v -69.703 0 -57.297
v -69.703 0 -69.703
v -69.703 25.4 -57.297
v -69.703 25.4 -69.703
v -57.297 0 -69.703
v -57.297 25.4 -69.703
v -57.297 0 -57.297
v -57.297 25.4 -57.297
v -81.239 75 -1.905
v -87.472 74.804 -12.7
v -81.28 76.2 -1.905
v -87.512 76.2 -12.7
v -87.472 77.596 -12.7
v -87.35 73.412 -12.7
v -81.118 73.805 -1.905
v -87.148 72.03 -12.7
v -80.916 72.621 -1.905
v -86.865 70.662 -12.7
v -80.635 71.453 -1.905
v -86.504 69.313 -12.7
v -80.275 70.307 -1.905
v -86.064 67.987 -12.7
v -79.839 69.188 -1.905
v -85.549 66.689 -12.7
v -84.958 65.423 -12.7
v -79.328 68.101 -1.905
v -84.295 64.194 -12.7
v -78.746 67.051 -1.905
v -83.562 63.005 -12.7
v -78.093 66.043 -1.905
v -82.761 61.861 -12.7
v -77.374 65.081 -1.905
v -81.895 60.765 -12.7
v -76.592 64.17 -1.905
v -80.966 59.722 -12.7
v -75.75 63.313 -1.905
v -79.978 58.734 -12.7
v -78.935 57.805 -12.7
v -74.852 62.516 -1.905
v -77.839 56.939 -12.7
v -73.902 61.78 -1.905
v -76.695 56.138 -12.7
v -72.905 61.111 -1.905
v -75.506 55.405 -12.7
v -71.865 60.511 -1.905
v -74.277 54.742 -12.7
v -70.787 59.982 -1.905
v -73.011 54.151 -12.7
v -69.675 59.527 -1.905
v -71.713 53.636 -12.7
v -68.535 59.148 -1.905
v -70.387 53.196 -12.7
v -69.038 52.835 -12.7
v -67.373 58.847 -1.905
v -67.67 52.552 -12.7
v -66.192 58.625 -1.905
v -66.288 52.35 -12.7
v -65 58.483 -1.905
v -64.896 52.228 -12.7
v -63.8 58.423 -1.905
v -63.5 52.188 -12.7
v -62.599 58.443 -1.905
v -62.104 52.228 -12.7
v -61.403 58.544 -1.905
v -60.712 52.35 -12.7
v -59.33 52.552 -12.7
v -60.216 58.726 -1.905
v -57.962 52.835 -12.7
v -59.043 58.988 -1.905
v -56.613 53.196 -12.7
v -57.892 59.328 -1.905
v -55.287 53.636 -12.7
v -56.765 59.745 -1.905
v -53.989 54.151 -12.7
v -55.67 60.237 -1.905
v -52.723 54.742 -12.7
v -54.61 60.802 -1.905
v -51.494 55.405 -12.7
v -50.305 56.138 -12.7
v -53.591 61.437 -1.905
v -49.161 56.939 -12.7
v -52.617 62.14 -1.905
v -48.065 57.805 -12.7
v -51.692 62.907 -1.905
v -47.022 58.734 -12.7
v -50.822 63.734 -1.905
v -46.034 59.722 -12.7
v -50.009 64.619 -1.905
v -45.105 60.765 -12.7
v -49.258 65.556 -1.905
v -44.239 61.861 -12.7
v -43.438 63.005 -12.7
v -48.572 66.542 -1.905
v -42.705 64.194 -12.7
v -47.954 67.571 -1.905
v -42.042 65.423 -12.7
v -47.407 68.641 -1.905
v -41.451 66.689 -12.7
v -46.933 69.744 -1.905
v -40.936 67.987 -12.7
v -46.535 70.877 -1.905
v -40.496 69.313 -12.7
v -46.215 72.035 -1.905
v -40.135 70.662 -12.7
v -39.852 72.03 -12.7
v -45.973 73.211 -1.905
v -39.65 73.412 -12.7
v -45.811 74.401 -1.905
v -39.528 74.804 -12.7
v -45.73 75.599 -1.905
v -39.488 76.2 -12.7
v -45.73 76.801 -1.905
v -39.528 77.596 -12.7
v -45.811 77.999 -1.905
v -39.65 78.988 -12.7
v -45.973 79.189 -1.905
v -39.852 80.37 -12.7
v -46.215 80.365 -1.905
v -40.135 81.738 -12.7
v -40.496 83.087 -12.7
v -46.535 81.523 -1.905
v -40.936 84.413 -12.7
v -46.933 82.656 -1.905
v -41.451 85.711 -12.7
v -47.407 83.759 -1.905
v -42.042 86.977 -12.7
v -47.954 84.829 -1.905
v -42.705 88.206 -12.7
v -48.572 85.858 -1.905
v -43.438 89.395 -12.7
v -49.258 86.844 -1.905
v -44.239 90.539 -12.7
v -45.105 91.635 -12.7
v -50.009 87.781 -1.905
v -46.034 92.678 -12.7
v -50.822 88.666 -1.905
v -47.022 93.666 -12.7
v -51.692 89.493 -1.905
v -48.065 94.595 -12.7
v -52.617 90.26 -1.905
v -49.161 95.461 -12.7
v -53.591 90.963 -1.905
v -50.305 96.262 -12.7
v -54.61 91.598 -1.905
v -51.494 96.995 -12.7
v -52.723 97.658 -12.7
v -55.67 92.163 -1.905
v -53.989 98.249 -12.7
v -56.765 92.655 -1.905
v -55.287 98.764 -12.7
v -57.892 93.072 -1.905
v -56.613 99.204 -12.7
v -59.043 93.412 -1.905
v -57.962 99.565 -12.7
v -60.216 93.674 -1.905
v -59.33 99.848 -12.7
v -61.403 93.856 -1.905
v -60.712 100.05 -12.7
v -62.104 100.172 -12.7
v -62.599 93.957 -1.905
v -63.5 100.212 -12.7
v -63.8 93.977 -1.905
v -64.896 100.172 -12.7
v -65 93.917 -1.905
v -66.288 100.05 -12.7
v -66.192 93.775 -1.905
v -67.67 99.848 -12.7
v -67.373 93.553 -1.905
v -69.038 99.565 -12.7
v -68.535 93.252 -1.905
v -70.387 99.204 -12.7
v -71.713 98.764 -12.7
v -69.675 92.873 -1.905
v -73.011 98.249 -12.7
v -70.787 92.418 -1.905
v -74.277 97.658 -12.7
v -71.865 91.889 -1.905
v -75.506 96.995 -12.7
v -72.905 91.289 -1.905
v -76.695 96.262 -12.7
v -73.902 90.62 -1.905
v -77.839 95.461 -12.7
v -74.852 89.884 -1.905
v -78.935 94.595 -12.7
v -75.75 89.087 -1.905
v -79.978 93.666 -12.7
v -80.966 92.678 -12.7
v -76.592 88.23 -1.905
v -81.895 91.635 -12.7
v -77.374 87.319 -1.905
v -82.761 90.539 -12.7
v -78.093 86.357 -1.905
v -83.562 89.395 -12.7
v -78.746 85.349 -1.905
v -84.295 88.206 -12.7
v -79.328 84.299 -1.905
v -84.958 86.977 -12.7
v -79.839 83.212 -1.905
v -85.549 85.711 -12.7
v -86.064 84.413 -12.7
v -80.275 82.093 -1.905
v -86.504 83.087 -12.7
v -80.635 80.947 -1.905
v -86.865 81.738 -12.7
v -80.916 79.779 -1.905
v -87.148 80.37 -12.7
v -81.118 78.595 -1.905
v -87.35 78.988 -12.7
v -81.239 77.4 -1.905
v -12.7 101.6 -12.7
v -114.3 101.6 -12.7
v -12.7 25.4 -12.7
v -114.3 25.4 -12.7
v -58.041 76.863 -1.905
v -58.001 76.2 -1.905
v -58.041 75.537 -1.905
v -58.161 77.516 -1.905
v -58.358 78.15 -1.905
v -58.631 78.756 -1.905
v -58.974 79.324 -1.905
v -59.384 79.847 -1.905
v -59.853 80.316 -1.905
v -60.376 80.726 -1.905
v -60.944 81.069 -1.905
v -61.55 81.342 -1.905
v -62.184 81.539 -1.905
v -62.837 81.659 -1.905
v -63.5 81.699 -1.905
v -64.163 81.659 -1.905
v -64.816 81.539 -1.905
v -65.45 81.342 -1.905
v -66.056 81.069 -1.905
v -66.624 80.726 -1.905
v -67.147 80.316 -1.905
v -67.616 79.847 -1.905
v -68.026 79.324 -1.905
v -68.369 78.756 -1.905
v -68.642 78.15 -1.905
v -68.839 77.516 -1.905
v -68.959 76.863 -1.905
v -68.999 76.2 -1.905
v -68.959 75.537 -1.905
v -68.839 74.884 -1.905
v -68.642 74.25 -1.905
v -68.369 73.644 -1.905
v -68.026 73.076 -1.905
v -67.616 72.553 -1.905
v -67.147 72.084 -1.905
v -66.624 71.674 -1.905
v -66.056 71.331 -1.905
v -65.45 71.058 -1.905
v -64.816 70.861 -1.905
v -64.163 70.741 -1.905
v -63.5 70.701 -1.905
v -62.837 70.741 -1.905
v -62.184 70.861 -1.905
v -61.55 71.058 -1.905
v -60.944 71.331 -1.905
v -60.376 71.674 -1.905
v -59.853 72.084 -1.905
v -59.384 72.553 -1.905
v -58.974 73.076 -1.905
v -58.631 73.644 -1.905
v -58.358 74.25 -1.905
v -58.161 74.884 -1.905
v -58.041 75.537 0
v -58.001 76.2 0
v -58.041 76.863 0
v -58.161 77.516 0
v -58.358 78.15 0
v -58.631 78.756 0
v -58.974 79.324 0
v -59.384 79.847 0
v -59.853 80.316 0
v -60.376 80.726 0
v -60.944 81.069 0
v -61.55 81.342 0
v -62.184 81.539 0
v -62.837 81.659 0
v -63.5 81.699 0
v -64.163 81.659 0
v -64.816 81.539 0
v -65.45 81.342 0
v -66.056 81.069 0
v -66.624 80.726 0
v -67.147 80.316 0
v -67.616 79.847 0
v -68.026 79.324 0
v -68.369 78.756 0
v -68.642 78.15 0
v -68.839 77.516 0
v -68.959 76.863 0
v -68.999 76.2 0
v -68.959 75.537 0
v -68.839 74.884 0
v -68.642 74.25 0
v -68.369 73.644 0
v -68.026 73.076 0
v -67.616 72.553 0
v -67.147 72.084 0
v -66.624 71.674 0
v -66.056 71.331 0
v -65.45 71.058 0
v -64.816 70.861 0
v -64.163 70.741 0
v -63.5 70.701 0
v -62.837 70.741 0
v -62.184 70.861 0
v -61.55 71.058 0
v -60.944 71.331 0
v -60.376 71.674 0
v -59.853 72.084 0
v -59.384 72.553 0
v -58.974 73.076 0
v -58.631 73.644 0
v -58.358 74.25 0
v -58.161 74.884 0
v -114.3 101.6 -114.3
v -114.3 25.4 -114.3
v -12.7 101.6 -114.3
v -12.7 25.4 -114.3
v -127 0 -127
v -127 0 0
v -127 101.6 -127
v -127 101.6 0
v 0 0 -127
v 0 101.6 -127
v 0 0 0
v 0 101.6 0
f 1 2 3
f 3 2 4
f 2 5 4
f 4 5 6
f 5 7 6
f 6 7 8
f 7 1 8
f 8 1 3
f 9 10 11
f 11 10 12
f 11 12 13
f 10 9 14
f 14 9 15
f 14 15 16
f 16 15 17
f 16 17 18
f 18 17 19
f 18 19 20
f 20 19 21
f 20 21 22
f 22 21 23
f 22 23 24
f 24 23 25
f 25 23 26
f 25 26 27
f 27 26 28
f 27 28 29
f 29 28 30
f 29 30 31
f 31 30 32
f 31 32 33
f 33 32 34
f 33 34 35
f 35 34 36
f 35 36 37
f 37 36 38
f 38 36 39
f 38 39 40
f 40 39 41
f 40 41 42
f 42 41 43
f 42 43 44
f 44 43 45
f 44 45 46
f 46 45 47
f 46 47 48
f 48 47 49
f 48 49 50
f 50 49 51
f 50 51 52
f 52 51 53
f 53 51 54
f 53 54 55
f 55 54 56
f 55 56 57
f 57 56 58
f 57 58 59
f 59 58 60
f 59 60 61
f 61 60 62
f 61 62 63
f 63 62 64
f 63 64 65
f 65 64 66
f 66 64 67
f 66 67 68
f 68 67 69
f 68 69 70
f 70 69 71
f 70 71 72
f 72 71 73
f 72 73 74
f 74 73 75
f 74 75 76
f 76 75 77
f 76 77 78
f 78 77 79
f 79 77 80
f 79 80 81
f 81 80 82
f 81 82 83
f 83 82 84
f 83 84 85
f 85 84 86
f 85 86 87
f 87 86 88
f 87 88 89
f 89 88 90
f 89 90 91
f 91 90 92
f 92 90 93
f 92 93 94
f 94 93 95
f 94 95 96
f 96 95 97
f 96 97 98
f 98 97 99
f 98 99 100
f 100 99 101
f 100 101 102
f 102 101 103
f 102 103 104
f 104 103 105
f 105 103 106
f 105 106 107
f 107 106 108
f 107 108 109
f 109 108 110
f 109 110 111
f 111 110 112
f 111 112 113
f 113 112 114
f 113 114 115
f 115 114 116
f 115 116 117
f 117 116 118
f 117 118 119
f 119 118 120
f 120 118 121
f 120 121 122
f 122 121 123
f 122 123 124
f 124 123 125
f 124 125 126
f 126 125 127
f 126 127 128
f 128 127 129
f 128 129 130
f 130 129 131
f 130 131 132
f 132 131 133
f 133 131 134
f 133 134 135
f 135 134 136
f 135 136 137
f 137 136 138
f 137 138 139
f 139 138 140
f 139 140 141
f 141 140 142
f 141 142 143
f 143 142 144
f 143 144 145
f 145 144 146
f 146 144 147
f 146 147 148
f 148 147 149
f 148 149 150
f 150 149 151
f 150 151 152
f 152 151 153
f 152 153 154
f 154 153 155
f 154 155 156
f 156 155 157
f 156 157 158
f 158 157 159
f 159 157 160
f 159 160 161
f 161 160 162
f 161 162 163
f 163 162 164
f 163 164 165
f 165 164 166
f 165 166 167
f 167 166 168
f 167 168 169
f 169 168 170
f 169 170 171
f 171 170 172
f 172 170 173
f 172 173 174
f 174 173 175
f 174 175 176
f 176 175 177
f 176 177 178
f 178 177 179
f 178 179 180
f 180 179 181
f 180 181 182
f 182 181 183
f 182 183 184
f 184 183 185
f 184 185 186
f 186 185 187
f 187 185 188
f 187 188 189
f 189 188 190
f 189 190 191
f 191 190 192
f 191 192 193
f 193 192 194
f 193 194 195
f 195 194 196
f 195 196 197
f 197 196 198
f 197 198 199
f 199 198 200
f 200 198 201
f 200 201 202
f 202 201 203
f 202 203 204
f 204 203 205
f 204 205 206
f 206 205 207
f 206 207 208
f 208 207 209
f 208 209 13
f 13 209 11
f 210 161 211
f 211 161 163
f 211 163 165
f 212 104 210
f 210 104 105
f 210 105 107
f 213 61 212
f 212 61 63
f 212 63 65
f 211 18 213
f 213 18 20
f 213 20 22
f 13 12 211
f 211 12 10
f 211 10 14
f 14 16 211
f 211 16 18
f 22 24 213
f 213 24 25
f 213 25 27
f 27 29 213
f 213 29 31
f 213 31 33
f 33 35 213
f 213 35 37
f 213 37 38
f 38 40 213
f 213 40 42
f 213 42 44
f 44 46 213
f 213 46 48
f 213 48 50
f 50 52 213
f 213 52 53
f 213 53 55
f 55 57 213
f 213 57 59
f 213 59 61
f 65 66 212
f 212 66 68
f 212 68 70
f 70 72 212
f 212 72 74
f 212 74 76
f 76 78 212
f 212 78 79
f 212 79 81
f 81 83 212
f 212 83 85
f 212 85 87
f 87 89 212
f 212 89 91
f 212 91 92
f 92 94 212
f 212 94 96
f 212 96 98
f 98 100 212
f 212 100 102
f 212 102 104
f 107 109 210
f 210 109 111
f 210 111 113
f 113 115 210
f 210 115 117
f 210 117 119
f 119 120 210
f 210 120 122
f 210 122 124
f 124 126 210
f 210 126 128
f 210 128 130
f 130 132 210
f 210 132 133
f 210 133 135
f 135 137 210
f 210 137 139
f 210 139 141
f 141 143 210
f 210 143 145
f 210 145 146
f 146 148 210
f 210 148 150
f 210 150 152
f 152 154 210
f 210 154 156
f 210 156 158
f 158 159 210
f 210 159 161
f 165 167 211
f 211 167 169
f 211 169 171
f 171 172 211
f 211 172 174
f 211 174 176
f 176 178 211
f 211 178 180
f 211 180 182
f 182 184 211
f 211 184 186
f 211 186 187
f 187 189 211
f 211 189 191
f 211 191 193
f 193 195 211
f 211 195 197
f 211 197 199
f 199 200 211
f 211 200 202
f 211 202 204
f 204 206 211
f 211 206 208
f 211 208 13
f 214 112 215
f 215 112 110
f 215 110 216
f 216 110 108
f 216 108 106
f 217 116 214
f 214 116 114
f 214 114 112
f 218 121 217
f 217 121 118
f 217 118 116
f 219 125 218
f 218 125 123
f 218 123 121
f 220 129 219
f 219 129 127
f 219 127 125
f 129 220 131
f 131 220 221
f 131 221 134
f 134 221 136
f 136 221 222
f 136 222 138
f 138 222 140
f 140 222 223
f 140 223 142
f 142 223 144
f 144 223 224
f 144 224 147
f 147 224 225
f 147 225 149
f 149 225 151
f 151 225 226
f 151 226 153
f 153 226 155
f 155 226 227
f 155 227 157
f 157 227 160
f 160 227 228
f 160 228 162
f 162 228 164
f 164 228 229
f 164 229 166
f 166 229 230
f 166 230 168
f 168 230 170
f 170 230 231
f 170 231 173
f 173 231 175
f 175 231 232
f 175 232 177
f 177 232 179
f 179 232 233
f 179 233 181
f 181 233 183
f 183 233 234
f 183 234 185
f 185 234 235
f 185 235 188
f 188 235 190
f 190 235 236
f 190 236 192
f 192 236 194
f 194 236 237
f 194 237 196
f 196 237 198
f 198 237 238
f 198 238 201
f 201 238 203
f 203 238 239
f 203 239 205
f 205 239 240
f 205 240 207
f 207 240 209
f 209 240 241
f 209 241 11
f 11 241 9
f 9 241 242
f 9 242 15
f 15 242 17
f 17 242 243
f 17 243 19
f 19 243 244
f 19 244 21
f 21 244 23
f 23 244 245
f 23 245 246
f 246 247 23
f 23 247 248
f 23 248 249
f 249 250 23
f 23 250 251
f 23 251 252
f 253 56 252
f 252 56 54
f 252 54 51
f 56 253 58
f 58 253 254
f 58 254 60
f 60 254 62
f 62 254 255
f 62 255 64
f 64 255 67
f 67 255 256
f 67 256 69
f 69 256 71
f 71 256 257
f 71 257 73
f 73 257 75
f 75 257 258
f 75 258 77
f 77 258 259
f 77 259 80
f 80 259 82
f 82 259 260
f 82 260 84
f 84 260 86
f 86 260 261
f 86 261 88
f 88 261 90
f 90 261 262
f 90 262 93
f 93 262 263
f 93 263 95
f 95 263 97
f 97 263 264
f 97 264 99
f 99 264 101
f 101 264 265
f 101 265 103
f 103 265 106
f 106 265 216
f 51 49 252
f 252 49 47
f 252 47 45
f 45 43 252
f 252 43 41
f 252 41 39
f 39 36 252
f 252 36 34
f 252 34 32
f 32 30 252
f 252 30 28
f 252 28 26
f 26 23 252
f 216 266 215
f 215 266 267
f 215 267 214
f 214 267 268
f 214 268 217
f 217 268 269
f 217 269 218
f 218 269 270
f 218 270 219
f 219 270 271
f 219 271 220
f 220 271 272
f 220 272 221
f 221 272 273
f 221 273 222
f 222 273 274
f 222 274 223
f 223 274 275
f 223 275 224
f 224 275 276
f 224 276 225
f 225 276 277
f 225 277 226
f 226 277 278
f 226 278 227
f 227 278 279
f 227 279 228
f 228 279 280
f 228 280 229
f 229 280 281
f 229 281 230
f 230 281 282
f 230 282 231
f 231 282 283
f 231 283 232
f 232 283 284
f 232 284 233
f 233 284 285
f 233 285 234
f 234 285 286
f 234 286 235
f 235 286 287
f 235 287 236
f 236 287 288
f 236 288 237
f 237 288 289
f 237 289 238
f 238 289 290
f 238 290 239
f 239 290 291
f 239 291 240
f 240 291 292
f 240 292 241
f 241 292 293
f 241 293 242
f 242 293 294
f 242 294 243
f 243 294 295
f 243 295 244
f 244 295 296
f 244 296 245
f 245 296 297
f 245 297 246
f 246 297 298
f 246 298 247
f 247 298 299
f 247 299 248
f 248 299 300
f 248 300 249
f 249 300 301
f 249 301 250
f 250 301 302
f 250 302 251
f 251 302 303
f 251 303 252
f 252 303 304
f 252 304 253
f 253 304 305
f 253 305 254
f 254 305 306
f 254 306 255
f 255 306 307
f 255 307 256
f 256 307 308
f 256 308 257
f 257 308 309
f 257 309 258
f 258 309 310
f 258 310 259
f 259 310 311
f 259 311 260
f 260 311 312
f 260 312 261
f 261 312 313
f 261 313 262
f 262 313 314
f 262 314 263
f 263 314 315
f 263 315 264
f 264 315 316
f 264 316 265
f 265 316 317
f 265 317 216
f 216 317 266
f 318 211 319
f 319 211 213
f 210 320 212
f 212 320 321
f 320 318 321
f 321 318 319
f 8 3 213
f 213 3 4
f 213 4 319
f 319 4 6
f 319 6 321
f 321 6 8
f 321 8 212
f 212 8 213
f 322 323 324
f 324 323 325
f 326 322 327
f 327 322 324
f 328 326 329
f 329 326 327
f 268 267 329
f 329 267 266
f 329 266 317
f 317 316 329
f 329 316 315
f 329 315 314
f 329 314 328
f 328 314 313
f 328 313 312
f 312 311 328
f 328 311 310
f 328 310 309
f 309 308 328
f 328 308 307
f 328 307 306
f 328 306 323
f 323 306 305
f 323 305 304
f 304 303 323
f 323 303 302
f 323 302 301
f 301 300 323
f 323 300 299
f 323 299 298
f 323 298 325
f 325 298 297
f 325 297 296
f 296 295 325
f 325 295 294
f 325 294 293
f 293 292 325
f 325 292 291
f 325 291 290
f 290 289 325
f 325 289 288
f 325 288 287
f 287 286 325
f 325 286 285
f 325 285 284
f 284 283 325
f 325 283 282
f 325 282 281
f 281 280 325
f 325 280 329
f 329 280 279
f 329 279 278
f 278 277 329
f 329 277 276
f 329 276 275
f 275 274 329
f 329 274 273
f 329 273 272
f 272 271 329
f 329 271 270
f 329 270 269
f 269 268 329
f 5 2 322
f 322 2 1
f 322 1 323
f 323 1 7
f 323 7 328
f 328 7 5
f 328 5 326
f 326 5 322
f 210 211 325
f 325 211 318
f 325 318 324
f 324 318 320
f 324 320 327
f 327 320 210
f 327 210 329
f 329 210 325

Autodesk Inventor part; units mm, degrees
ref_plane "YZ Plane" through (0, 0, 0) normal (1, 0, 0) x (0, 1, 0)
ref_plane "XZ Plane" through (0, 0, 0) normal (0, 1, 0) x (-1, 0, 0)
ref_plane "XY Plane" through (0, 0, 0) normal (0, 0, 1) x (1, 0, 0)
sketch "Sketch1" plane through (0, 0, 0) normal (0, 1, 0) x (-1, 0, 0)
  line L0 (0, 0) -> (127, 0)
  line L1 (127, 0) -> (127, -127)
  line L2 (127, -127) -> (0, -127)
  line L3 (0, -127) -> (0, 0)
  dimension "d0" = 127
  dimension "d1" = 127
extrude "Extrusion1" add sketch "Sketch1" along normal blind 101.6
sketch "Sketch2" plane through (0, 101.6, 0) normal (0, 1, 0) x (1, 0, 0)
  line L0 (-114.3, 114.3) -> (-12.7, 114.3)
  line L1 (-12.7, 114.3) -> (-12.7, 12.7)
  line L2 (-12.7, 12.7) -> (-114.3, 12.7)
  line L3 (-114.3, 12.7) -> (-114.3, 114.3)
  line L4 (-127, 127) -> (-127, 0) projected
  line L5 (0, 127) -> (-127, 127) projected
  point P0 (0, 0)
  dimension "d4" = 101.6
  dimension "d5" = 101.6
  dimension "d6" = 12.7
  dimension "d7" = 12.7
extrude "Extrusion2" cut sketch "Sketch2" against normal blind 76.2
sketch "Sketch3" plane through (-127, 0, 0) normal (0, 0, 1) x (1, 0, 0)
  point P0 (127, 0)
sketch "Sketch4" plane through (-127, 0, 0) normal (0, 0, 1) x (1, 0, 0)
  circle A0 centre (63.5, 76.2) radius 5.4991
  line L0 (127, 0) -> (0, 0) projected
  line L1 (127, 0) -> (127, 101.6) projected
  dimension "d10" = 10.9982
  dimension "d11" = 76.2
  dimension "d12" = 63.5
extrude "Extrusion3" cut sketch "Sketch4" against normal blind 76.2
sketch "Sketch5" plane through (-12.7, 101.6, -12.7) normal (0, 0, -1) x (-1, 0, 0)
  circle A0 centre (50.8, -25.4) radius 17.78
  line L0 (0, -76.2) -> (101.6, -76.2) projected
  line L1 (0, 0) -> (0, -76.2) projected
  point P0 (-12.7, -101.6)
  dimension "d15" = 35.56
  dimension "d16" = 50.8
  dimension "d17" = 50.8
extrude "Extrusion4" cut sketch "Sketch5" against normal blind 10.795
chamfer "Chamfer2" distance 10.795 angle 30 1 edges at (-45.72, 76.2, -12.7) measured on face at (-81.0498, 73.3479, -5.5033)
sketch "Sketch6" plane through (0, 0, 0) normal (0, -1, 0) x (1, 0, 0)
  line L0 (-57.2968, -57.2968) -> (-69.7032, -57.2968)
  line L1 (-69.7032, -57.2968) -> (-69.7032, -69.7032)
  line L2 (-69.7032, -69.7032) -> (-57.2968, -69.7032)
  line L3 (-57.2968, -69.7032) -> (-57.2968, -57.2968)
  line L4 (-127, -127) -> (0, -127) projected
  line L5 (0, -127) -> (0, 0) projected
  line L6 (0, 0) -> (-127, 0) projected
  line L7 (-127, 0) -> (-127, -127) projected
  dimension "d26" = 12.4064
  dimension "d27" = 12.4064
  dimension "d28" = 57.2968
  dimension "d29" = 57.2968
  dimension "d30" = 57.2968
  dimension "d31" = 57.2968
extrude "Extrusion5" cut sketch "Sketch6" against normal blind 25.4 contours L3 L2 L1 L0
equation "\"d6\" = -0.5 * d4 + 0.5 * d1"
equation "\"d7\" = -0.5 * d5 + 0.5 * d0"
equation "\"d12\" = 0.5 * d0"
equation "\"d28\" = -0.5 * d27 + 0.5 * d1"
equation "\"d29\" = -0.5 * d26 + 0.5 * d0"
properties part number "lampbottom"
